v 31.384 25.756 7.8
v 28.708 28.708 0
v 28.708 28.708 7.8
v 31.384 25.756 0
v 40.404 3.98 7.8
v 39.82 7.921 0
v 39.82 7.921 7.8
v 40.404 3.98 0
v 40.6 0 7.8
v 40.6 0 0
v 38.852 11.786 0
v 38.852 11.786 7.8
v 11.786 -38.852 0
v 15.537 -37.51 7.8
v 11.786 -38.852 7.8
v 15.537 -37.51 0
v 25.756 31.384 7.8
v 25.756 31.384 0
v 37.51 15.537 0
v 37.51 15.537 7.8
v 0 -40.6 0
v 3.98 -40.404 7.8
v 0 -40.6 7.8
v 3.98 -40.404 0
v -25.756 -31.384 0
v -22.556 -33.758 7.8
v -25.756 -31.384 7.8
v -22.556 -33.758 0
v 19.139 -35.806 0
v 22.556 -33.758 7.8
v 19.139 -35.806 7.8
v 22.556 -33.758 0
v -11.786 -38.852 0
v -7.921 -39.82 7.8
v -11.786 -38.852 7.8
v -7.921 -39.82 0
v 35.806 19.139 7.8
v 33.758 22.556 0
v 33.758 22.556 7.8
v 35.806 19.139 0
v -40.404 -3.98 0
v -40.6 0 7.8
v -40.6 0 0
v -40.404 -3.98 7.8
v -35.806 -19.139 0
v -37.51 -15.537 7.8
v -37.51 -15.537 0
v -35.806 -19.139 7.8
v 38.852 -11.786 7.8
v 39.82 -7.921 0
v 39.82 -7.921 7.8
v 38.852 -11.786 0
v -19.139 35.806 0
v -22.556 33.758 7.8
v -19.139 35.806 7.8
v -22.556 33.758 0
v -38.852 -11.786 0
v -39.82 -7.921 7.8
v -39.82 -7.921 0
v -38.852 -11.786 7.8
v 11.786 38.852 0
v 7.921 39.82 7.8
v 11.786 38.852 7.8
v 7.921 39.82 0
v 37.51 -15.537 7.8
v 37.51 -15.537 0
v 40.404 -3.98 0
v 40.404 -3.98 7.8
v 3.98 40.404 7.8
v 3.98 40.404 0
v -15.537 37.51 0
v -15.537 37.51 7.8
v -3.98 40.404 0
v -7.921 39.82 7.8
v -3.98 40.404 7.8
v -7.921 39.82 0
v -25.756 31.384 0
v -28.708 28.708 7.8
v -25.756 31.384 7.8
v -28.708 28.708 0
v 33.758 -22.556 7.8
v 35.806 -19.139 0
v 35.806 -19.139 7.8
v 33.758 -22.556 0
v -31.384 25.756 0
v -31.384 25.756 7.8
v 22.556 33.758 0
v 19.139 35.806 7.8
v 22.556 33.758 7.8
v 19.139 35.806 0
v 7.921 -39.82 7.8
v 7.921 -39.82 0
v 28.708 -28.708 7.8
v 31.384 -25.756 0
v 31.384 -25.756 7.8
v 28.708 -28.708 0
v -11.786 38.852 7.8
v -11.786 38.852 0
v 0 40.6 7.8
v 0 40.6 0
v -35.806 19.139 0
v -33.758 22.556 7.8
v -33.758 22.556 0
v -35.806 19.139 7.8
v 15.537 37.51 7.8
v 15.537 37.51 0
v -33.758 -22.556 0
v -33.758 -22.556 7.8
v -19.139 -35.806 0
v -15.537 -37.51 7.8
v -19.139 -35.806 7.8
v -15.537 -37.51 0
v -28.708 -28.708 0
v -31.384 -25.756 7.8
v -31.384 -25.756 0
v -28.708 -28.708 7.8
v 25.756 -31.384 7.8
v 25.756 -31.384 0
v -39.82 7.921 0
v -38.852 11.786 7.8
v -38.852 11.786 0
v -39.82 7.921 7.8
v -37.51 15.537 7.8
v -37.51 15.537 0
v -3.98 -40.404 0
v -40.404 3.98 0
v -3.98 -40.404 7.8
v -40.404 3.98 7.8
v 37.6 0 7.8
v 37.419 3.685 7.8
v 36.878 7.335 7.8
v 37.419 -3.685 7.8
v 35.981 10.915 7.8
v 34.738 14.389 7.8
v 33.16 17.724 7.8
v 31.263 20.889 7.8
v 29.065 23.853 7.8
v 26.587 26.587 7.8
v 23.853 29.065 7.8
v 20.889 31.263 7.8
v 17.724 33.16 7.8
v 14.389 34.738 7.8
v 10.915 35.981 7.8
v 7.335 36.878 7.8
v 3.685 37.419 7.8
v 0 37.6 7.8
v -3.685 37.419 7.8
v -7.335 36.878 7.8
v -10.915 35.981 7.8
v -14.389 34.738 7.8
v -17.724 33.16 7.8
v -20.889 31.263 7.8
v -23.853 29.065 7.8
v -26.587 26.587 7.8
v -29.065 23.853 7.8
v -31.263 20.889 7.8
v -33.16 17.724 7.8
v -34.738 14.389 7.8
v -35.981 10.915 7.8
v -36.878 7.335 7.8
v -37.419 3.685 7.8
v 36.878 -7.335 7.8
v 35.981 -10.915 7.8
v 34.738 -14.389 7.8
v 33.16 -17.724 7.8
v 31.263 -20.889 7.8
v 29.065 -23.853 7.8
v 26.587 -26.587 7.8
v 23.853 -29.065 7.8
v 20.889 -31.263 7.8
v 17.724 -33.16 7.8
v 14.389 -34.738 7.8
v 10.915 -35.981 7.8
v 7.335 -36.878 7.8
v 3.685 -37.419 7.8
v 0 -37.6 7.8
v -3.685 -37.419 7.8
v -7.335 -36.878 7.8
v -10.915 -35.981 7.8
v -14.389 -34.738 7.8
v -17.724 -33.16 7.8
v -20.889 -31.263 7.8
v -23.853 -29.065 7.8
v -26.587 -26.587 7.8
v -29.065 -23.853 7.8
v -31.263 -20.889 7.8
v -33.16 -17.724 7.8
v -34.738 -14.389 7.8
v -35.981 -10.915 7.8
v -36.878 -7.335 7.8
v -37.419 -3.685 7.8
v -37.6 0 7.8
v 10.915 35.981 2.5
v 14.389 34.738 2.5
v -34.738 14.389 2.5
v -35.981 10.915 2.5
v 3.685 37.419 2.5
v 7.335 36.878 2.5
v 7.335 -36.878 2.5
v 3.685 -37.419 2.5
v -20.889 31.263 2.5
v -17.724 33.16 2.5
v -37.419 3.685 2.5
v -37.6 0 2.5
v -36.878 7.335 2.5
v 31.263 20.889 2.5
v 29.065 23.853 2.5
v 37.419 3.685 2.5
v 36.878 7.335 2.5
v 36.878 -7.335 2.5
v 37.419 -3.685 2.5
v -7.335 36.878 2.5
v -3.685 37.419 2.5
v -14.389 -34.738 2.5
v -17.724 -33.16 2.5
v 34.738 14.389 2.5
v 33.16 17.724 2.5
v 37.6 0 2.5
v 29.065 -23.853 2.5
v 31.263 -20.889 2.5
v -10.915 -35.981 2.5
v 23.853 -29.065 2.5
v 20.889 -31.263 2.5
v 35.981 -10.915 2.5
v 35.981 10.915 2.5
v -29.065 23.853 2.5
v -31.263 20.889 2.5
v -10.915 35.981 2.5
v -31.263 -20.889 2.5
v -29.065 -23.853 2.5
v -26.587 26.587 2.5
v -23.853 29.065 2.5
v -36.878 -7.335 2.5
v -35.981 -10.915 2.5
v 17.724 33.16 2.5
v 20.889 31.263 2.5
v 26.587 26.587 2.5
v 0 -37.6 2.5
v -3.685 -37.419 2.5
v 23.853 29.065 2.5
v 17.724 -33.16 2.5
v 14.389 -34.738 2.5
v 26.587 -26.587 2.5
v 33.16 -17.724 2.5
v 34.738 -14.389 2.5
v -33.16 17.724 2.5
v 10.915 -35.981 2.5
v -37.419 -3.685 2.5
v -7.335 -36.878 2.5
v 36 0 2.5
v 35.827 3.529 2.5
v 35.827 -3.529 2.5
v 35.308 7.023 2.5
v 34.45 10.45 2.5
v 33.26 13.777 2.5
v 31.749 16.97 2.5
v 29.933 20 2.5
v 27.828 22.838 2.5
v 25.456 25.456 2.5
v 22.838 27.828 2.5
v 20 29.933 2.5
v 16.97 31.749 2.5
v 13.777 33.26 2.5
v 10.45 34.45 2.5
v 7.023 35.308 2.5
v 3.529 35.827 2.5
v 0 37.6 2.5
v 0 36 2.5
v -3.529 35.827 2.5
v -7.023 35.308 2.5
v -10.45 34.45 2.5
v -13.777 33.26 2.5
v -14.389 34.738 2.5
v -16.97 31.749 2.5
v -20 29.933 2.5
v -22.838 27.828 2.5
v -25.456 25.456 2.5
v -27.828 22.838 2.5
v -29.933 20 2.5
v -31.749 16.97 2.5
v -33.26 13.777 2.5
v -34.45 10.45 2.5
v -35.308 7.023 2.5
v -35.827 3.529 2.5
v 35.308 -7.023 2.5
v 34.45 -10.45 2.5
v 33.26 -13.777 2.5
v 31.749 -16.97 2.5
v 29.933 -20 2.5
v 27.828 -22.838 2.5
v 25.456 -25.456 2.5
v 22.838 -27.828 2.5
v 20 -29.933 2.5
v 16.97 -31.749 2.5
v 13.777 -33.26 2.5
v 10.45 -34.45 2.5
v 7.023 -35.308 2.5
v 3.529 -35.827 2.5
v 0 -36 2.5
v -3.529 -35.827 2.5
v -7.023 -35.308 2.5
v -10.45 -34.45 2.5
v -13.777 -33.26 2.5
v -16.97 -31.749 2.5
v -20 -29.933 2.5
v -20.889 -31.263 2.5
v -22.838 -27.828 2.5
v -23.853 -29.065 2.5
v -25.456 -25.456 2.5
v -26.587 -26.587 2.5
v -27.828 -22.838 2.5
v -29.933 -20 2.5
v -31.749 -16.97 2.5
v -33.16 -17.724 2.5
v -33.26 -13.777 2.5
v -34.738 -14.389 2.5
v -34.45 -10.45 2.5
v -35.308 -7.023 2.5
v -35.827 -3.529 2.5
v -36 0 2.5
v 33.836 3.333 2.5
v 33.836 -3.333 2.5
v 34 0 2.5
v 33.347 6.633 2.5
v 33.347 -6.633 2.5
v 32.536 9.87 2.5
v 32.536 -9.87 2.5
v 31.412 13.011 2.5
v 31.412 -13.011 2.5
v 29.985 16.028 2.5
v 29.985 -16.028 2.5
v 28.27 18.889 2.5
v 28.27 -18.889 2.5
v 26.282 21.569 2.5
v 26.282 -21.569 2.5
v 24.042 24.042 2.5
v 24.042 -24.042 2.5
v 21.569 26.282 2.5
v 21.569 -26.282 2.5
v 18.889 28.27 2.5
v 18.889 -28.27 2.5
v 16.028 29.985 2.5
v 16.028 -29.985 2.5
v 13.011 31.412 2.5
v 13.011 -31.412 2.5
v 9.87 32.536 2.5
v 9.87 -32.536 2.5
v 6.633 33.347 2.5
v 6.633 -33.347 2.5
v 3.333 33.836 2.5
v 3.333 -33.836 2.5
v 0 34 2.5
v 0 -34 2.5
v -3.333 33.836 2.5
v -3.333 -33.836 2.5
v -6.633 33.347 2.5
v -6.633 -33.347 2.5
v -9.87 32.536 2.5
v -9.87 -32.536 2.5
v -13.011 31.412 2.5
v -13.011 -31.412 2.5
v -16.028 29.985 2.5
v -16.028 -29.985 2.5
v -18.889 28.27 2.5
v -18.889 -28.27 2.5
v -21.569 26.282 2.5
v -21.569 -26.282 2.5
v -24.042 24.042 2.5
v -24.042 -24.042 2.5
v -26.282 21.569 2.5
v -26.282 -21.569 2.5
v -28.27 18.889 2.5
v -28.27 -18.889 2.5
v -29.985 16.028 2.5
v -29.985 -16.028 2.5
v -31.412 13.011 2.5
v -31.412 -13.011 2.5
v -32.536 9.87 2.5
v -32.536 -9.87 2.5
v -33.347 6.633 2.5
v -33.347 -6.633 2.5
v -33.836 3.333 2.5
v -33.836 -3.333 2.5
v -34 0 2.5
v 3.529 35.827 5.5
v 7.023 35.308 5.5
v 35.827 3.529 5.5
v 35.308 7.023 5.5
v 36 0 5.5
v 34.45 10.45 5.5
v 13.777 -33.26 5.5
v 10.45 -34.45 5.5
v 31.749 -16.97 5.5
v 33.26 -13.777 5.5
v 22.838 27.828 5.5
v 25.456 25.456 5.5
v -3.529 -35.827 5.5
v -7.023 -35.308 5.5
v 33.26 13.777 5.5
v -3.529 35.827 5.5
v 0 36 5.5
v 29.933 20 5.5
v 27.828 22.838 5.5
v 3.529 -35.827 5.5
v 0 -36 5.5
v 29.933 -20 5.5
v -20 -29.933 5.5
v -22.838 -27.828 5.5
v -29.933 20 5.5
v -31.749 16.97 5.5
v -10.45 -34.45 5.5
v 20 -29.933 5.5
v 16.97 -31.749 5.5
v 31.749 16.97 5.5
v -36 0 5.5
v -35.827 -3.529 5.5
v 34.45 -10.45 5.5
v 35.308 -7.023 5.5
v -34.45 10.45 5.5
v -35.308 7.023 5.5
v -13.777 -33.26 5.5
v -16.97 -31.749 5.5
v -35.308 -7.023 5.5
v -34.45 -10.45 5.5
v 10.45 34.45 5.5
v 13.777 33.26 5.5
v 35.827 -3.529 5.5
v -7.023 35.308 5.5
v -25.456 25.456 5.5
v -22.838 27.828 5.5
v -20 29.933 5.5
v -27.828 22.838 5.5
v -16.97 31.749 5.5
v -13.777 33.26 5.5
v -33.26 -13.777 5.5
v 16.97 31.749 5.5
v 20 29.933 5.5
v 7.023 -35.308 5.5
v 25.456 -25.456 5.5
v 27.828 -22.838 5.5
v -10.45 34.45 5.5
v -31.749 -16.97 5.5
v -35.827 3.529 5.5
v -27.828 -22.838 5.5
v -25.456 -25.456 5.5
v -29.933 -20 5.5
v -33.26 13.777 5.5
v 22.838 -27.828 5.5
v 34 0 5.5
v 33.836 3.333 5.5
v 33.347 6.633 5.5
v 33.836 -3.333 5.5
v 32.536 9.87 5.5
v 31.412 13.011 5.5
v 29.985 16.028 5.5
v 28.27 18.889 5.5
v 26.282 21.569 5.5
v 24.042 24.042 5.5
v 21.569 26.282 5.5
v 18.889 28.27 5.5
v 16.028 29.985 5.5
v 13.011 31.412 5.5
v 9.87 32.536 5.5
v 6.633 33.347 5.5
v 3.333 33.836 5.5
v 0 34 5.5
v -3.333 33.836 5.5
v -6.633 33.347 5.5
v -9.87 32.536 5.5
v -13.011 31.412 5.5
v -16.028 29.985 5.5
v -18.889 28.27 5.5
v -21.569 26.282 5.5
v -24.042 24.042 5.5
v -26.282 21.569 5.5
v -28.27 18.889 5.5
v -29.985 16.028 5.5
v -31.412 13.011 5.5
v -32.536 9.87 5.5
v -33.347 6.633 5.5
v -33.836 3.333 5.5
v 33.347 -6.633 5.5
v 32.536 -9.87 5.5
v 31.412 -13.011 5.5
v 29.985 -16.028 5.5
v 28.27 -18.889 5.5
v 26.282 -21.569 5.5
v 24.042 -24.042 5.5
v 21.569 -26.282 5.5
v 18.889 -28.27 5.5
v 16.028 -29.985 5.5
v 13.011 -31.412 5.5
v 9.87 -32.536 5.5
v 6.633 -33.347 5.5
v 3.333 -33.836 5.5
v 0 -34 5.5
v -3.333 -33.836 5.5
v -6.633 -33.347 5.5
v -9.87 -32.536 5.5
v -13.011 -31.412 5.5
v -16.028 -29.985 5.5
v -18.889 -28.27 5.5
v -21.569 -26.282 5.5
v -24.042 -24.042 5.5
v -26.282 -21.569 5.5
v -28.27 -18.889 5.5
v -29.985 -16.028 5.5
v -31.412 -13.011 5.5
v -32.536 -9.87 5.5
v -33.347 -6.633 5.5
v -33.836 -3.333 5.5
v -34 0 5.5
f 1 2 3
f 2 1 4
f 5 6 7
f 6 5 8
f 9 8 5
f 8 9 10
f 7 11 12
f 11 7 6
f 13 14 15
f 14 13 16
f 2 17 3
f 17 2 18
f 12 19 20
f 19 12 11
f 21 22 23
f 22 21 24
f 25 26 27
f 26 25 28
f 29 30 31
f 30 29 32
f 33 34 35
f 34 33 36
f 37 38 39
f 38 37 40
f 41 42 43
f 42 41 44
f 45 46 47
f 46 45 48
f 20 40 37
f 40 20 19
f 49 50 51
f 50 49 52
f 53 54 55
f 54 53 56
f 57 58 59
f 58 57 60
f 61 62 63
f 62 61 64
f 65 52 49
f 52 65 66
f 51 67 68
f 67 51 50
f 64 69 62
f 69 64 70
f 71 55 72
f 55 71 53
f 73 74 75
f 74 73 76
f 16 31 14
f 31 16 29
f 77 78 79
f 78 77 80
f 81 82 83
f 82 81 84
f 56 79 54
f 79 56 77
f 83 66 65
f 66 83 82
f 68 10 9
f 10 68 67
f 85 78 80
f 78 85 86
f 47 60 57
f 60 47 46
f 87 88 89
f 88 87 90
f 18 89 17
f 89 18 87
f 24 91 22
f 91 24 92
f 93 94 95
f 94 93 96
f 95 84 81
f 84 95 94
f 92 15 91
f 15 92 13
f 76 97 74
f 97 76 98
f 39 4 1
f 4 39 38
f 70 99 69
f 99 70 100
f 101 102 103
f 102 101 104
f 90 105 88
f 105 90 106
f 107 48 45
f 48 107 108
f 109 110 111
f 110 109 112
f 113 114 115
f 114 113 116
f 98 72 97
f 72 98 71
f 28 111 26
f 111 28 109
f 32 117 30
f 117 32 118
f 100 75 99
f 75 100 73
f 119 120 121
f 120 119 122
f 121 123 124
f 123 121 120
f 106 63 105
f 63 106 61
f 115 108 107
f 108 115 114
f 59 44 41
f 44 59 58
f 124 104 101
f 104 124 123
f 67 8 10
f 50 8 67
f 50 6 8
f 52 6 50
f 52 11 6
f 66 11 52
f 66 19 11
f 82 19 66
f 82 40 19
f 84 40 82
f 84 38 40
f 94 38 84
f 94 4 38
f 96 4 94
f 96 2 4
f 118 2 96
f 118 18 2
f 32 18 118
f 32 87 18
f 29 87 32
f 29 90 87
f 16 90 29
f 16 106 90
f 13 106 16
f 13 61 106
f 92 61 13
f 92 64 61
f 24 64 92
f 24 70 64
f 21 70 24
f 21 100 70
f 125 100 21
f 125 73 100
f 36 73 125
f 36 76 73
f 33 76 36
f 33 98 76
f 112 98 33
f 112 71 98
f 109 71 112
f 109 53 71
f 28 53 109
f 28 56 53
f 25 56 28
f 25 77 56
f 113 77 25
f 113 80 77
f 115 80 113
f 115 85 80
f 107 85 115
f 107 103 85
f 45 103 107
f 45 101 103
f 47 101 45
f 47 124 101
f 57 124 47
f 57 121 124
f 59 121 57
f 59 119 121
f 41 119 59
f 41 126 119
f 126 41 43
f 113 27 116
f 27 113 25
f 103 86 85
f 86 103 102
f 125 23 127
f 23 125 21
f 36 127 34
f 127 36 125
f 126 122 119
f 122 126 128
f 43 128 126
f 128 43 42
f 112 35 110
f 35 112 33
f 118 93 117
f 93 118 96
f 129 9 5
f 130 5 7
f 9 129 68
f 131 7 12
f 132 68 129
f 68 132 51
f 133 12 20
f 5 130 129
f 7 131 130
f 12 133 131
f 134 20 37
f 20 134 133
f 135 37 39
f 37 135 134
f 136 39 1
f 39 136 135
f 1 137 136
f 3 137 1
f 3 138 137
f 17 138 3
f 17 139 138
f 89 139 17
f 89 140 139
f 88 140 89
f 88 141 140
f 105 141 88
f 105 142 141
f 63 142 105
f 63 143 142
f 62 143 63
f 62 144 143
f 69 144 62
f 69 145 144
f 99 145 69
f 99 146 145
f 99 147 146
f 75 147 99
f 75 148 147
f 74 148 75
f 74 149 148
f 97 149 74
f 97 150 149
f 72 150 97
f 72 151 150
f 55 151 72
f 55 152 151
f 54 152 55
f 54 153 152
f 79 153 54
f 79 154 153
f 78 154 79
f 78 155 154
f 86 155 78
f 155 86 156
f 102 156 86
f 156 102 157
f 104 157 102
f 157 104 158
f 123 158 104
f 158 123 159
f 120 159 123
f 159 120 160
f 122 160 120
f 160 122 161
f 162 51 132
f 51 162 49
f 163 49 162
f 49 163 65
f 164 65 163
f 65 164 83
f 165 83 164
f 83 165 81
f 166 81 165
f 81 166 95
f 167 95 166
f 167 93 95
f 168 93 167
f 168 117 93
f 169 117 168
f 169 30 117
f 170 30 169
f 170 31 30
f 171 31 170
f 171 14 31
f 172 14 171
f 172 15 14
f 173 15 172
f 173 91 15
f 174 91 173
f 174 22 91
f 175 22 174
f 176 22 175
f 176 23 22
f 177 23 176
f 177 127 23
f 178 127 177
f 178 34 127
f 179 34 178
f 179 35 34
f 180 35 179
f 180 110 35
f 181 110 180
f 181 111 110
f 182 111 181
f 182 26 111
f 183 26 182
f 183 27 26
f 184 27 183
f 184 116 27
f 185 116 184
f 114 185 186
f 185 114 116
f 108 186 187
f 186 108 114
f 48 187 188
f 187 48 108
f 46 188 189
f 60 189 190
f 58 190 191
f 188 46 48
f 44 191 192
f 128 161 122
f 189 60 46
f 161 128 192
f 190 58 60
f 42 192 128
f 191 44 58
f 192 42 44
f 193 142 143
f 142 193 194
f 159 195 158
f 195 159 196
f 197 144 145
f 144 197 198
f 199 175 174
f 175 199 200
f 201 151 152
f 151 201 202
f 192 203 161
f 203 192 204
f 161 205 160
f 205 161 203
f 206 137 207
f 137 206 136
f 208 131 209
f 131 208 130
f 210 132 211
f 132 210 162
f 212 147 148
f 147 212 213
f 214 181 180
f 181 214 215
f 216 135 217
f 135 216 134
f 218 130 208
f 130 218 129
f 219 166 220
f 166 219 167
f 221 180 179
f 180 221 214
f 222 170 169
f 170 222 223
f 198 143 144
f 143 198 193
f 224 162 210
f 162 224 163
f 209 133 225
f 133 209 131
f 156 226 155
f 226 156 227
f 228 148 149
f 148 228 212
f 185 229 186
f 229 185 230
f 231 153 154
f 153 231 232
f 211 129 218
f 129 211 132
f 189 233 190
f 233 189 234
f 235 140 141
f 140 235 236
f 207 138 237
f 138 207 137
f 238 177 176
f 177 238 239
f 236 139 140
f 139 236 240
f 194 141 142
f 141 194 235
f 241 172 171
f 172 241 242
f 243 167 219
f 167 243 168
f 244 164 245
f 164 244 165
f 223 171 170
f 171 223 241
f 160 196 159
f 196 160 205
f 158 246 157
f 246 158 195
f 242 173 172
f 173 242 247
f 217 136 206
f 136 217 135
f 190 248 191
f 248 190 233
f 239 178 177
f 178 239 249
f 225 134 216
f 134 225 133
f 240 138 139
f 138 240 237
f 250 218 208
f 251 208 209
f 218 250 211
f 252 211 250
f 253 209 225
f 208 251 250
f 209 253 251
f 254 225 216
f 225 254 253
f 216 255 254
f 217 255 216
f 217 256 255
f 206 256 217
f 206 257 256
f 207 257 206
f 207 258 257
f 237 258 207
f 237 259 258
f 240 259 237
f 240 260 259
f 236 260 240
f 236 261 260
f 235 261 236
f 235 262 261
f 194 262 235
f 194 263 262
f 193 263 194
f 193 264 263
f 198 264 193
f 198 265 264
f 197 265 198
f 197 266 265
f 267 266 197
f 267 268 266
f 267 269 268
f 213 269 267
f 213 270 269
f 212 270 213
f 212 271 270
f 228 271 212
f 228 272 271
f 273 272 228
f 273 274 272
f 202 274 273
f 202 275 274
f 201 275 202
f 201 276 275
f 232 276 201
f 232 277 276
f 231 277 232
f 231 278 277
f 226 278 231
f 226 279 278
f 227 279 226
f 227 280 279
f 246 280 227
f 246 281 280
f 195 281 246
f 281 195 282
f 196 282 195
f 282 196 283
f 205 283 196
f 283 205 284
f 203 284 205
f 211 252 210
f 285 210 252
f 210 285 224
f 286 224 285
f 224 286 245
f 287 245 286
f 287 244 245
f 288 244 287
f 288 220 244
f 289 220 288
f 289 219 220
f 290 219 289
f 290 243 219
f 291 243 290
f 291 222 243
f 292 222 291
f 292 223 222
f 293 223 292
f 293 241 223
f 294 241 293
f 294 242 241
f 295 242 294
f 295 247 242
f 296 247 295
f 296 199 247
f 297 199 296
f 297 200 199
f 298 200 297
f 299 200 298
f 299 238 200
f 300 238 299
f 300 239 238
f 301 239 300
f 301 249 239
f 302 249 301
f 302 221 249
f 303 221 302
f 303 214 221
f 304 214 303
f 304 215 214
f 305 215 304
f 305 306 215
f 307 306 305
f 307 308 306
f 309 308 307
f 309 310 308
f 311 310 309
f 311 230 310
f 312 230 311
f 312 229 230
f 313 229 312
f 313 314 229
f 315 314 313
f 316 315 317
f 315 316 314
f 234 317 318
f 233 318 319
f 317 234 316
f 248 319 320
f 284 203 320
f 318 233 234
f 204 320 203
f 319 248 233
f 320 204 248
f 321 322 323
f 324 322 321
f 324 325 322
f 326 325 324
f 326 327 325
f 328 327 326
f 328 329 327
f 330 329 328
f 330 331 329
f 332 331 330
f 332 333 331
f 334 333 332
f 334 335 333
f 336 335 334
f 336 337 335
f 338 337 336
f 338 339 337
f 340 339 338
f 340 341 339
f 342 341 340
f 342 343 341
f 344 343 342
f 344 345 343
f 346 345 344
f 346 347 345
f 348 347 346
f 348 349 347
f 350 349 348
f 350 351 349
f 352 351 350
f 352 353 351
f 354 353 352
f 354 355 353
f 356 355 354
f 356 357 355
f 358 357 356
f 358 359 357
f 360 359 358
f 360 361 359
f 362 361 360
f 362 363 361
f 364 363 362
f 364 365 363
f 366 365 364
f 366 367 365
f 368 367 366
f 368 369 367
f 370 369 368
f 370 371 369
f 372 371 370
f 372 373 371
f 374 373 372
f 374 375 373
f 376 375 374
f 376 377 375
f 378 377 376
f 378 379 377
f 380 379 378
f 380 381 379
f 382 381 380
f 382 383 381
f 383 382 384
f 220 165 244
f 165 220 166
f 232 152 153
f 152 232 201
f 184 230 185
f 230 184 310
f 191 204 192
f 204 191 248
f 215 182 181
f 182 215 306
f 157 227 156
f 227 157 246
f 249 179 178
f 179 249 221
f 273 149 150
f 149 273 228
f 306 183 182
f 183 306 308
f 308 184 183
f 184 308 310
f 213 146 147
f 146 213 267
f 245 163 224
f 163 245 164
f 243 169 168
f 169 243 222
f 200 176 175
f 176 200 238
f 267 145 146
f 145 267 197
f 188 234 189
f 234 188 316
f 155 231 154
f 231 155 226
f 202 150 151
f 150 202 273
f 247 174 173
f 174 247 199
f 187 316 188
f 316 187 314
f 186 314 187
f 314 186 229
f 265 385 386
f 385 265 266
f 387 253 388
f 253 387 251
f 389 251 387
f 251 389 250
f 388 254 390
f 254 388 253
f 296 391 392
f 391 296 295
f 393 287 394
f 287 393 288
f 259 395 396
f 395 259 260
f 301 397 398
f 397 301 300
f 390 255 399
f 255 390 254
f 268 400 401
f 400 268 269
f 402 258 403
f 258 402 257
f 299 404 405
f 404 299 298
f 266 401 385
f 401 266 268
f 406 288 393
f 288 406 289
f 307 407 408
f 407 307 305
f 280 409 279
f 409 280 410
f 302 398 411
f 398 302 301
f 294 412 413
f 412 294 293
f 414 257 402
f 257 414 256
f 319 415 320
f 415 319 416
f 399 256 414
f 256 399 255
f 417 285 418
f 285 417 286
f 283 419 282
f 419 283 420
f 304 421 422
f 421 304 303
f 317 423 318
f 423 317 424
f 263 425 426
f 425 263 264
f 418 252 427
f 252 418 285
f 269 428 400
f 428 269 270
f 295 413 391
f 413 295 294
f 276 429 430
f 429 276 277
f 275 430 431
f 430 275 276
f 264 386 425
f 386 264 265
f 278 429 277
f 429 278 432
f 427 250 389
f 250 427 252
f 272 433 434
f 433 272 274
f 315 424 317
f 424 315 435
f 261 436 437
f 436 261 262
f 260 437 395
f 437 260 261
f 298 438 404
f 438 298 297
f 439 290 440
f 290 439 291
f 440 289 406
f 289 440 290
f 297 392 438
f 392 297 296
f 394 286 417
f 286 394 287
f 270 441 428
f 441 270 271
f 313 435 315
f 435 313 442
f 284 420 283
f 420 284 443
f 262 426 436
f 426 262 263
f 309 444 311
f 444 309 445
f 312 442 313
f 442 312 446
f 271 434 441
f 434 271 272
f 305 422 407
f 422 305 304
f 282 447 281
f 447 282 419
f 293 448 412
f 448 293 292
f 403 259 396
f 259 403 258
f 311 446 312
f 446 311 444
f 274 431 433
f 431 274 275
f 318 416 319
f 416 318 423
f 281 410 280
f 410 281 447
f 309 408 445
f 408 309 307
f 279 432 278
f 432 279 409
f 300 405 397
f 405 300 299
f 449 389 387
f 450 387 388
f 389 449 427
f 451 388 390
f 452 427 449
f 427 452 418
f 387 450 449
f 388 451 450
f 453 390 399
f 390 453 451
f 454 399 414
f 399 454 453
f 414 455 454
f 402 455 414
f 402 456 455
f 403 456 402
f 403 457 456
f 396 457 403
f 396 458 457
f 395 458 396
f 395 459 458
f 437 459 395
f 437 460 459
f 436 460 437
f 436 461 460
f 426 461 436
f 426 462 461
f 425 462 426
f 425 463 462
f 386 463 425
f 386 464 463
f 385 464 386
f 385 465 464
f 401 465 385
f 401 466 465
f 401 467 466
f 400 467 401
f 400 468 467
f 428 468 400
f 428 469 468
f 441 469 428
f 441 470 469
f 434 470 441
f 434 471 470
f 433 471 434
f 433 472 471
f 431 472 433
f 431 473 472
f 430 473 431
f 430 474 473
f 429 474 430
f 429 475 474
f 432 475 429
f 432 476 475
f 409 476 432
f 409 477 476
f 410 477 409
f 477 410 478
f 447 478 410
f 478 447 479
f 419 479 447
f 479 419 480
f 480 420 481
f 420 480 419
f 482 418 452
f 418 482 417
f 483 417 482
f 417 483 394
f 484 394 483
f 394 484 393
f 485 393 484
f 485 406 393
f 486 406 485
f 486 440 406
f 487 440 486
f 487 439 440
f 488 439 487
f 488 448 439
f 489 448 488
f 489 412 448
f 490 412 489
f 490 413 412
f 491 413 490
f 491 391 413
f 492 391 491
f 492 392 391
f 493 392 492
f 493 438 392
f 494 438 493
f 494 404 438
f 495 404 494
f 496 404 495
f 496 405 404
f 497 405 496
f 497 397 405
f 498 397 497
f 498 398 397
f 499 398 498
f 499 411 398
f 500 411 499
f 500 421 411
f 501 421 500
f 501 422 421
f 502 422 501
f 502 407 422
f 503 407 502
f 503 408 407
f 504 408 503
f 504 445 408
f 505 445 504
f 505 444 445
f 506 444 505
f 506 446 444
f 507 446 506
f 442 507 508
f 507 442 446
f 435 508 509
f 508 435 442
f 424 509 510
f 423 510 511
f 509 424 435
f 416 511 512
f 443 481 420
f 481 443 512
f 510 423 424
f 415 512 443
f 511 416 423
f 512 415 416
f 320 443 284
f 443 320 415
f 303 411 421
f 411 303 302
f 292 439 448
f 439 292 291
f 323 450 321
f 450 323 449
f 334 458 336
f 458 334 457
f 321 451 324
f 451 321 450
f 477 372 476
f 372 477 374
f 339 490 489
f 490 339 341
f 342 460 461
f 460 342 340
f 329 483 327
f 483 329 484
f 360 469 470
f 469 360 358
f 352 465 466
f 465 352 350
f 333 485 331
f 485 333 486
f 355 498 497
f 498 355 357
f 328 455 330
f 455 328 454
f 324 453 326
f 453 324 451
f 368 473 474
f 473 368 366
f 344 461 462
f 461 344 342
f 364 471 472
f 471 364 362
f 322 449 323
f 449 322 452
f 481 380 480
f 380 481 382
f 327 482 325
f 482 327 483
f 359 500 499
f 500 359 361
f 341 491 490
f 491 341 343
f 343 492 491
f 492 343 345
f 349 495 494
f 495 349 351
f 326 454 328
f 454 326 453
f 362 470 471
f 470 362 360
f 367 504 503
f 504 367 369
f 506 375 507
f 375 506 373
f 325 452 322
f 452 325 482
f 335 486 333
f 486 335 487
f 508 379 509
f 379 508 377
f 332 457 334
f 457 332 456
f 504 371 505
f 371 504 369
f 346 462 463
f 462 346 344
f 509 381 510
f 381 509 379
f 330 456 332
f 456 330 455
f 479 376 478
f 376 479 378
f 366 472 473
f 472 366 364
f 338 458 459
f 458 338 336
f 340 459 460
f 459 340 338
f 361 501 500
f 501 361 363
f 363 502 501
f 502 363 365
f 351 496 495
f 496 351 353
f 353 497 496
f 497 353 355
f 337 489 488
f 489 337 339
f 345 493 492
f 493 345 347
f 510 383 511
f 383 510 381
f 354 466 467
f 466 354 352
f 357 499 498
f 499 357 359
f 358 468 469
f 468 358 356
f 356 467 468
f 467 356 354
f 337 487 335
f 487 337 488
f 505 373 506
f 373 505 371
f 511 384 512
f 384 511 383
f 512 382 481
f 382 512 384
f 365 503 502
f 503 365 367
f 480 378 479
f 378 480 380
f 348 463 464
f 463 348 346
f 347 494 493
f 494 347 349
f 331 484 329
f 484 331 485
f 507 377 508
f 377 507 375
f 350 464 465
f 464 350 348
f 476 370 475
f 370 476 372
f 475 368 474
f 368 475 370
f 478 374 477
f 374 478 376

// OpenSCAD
//
// dog food can lid for ~ 3in diam cans
//

//
//      +------------------------------------------------+
//      |                                                |
//      |  +---+    +------------------------+    +---+  |
//      |  |   +----+                        +----+   |  |
//      +--+                                          +--+
//     
//      OL      IL

$fn=64;

rim_dia = 75.2;			/* outer diameter of rim */
can_dia = 73.6;			/* can body dia below rim */
in_dia = 72.0;			/* inner diameter */
rim_hgt_o = 3.3;		/* rim height (outside) */
rim_hgt_i = 3.0;		/* rim height (inside) */

il_r = 2;			/* radius of inner lip */
ol_r = 3;			/* radius of outer lip */
il_z = rim_hgt_i;
ol_z = rim_hgt_o+2;

thick = 2.5;			/* thickness */

e = 0.1;

max_dia = rim_dia + 2*ol_r;

difference() {
     cylinder( r=max_dia/2, h=thick+ol_z);
     translate( [0, 0, thick]) {
	  cylinder( r=rim_dia/2, h=ol_z+e);
     }
}

translate( [0, 0, thick-e]) {
     difference() {
	  cylinder( r=in_dia/2, h=il_z+e);
	  cylinder( r=in_dia/2-il_r, h=il_z+2*e);
     }
}
